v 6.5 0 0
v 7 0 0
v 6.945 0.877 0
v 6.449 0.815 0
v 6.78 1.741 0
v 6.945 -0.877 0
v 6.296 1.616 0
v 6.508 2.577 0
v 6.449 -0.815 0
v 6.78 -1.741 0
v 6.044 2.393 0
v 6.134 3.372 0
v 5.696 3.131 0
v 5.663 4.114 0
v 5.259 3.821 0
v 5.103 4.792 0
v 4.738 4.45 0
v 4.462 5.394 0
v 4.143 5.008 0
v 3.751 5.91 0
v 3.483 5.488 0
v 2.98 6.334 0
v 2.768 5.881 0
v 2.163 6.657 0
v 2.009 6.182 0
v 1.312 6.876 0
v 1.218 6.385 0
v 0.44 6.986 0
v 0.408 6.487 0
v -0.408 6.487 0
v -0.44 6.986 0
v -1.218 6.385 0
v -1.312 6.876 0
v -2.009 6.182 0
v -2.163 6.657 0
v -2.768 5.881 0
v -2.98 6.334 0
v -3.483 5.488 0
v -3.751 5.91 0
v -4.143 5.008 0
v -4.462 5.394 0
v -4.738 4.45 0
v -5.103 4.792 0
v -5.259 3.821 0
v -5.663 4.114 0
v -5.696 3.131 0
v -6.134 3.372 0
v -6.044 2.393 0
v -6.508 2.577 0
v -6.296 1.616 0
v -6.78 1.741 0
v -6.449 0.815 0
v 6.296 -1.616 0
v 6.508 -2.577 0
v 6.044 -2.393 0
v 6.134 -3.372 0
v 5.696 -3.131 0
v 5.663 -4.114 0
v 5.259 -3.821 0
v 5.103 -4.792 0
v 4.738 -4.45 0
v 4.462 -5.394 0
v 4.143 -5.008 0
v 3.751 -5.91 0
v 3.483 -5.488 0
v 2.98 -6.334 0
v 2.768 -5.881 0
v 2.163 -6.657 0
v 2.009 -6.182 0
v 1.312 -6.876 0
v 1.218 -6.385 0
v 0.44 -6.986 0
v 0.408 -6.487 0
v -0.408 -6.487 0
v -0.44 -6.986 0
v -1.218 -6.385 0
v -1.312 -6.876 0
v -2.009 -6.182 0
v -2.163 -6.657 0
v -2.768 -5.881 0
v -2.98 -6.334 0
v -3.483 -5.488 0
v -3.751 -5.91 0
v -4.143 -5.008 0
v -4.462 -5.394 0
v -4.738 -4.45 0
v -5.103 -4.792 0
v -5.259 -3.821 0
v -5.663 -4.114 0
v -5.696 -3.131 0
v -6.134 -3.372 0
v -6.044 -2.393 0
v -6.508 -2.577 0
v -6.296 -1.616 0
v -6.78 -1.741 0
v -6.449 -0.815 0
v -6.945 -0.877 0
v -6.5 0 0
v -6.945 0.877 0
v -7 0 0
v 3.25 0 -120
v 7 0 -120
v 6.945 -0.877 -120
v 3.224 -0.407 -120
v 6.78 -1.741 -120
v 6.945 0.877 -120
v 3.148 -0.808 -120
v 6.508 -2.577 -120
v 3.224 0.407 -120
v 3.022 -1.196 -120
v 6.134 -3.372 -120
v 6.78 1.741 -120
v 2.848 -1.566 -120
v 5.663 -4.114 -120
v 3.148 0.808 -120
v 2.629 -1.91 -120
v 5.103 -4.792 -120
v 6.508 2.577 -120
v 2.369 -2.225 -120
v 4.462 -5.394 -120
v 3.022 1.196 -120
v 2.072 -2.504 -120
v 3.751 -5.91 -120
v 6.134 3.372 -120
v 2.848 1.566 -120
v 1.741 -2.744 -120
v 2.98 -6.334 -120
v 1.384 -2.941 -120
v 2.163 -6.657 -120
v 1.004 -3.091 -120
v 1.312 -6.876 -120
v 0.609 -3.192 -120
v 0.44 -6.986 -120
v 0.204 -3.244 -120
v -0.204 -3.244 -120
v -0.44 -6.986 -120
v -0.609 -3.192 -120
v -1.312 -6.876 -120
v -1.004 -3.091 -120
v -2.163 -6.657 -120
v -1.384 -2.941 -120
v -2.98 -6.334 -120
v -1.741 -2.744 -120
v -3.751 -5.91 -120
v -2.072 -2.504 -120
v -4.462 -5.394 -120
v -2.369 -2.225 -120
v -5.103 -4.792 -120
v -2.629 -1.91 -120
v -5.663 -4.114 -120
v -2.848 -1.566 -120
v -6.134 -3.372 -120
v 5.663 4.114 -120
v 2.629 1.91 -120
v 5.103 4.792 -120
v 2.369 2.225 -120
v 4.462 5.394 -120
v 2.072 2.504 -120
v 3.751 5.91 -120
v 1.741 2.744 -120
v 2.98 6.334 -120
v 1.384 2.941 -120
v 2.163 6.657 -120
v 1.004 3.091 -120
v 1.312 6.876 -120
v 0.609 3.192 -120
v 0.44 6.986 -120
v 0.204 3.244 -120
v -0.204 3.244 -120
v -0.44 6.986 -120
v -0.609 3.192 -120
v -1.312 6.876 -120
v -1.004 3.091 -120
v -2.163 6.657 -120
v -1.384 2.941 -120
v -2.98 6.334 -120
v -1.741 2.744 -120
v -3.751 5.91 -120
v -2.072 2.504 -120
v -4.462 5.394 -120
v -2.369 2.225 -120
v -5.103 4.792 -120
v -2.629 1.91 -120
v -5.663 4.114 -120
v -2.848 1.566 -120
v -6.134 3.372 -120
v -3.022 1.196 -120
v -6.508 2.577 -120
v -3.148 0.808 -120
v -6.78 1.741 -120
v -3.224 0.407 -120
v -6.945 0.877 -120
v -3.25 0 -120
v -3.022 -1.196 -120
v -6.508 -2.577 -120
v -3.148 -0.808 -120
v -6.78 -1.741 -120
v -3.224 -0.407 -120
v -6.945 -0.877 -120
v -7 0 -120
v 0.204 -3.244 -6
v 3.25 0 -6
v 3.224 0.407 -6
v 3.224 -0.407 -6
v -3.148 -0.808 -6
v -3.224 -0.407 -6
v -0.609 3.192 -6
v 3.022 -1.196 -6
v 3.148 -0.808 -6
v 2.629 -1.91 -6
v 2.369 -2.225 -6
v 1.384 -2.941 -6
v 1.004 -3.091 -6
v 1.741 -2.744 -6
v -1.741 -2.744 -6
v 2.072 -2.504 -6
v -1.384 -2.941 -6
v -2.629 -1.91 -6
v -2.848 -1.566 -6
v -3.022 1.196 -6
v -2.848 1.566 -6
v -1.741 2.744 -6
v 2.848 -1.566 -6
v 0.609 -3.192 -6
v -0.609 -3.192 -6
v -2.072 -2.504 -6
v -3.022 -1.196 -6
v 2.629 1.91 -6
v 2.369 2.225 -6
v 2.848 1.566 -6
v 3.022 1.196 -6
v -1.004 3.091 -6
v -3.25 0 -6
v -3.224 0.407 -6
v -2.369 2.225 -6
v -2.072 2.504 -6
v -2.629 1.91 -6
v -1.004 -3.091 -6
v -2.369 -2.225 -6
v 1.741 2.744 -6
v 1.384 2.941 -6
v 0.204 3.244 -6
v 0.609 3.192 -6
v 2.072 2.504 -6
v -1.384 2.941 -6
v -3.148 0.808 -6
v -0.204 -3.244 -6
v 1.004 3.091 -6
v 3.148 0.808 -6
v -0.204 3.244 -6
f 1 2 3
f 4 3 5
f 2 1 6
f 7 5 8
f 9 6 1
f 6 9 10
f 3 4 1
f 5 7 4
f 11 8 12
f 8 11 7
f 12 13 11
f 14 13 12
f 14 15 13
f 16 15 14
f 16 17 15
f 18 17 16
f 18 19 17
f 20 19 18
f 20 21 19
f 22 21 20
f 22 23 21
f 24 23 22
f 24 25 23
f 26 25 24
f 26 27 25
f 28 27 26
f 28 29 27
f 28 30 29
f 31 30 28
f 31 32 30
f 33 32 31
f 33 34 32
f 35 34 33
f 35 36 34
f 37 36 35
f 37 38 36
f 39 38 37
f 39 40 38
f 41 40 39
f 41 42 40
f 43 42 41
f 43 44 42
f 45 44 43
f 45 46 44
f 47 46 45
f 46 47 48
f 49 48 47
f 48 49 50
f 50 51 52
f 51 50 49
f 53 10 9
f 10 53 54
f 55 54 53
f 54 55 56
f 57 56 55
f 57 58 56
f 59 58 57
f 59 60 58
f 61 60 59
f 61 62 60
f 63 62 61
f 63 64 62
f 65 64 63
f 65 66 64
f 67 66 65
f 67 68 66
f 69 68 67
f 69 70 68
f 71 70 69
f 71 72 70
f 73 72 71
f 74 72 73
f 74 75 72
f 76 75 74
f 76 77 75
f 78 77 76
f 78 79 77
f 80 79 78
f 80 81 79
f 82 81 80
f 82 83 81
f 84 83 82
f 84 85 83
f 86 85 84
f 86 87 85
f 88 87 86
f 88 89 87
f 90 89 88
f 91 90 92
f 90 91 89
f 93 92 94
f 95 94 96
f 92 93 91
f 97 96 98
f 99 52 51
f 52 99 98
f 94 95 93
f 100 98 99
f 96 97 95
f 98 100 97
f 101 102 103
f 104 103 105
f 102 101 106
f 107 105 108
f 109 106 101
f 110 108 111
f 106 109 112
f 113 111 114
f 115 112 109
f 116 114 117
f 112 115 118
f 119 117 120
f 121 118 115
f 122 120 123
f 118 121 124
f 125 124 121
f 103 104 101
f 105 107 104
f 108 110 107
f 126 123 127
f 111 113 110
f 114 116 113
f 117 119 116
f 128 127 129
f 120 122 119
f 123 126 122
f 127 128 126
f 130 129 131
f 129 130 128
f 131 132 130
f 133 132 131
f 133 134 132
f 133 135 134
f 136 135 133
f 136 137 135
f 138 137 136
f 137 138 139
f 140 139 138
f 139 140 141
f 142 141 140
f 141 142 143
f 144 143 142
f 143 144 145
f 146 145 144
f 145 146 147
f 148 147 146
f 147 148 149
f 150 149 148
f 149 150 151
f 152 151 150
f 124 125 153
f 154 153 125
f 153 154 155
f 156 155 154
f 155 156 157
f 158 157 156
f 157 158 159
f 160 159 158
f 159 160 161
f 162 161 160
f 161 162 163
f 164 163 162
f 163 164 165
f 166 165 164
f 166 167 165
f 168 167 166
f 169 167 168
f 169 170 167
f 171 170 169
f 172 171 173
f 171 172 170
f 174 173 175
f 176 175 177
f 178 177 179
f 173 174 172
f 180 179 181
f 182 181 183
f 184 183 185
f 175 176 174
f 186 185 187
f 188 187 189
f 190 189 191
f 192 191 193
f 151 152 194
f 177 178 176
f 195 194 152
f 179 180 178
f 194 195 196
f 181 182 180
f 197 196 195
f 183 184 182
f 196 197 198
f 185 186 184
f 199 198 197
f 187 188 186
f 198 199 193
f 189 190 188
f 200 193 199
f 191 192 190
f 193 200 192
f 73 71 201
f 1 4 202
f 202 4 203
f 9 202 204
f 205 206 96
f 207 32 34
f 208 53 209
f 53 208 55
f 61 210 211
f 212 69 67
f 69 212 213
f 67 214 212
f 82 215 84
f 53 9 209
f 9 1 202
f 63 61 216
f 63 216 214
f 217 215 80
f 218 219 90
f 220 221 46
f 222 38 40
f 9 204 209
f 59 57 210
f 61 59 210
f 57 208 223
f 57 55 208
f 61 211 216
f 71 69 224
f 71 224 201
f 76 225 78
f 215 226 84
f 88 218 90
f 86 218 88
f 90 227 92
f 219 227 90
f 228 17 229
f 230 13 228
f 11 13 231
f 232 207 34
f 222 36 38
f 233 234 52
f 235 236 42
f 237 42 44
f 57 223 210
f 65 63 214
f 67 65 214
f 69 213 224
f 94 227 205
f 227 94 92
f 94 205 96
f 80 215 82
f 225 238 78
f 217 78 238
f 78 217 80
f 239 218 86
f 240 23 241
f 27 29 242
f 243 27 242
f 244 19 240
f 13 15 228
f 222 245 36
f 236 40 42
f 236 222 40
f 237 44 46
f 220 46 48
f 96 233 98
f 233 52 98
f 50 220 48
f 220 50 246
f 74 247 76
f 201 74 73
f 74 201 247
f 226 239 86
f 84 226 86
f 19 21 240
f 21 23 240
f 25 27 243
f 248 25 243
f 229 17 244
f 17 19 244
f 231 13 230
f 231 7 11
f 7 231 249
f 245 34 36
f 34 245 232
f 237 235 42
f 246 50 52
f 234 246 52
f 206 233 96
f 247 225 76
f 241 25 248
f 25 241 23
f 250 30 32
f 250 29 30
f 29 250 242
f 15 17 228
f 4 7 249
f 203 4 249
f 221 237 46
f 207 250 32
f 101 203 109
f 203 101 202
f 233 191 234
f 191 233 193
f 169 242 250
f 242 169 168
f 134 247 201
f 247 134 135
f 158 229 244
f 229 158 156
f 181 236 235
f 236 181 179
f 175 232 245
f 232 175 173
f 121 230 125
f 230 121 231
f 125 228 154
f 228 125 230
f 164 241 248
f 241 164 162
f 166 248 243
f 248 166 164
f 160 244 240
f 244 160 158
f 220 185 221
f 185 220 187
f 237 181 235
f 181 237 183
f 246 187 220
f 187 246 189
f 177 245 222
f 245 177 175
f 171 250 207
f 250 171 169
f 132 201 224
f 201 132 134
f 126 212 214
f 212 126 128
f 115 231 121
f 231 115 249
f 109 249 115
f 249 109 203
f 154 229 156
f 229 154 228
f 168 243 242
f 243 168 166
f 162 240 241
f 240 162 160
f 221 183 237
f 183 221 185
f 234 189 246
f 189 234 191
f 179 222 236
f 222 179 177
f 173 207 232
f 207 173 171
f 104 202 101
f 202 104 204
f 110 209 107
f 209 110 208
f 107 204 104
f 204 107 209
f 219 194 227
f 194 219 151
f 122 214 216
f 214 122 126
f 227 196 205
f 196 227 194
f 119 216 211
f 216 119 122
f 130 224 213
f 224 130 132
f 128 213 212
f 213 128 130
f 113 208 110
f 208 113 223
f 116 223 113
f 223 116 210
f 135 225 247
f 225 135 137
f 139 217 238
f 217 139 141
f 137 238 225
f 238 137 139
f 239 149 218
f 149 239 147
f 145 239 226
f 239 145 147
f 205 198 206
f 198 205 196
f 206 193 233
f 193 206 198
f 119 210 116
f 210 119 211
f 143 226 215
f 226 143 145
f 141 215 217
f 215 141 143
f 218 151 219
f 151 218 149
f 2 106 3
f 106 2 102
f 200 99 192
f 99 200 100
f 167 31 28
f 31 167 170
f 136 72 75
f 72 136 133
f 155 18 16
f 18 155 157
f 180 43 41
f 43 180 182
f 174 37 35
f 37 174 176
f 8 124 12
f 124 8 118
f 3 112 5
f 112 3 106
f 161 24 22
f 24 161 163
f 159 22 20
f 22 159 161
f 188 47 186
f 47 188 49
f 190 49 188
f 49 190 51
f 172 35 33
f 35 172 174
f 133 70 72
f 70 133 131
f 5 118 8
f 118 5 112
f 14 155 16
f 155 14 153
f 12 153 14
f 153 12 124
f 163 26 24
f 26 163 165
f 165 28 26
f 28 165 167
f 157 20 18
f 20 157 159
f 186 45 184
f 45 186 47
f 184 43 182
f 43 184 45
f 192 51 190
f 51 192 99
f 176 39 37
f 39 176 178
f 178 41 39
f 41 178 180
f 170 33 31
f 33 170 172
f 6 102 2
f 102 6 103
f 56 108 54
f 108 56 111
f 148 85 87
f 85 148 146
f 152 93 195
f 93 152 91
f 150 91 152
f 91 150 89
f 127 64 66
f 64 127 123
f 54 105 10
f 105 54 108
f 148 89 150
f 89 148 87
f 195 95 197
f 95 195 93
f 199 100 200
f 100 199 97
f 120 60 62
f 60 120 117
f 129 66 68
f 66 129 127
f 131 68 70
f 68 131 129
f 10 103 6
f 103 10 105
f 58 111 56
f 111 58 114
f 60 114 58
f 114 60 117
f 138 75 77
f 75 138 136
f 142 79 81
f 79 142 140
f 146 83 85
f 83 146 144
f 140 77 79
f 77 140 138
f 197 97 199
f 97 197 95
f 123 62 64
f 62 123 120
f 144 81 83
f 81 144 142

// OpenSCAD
$fn = 50;


difference() {
	union() {
		translate(v = [0, 0, -120.0000000000]) {
			cylinder(h = 120, r = 7.0000000000);
		}
		cylinder(h = 0, r = 13.0000000000);
	}
	union() {
		translate(v = [0, 0, 0]) {
			rotate(a = [0, 0, 0]) {
				difference() {
					union() {
						#translate(v = [0, 0, -120.0000000000]) {
							cylinder(h = 120, r = 2.2500000000);
						}
						#translate(v = [0, 0, -6]) {
							cylinder(h = 6, r = 7.0000000000, r1 = 3.2500000000, r2 = 6.5000000000);
						}
						#translate(v = [0, 0, -120.0000000000]) {
							cylinder(h = 120, r = 3.2500000000);
						}
						#translate(v = [0, 0, -120.0000000000]) {
							cylinder(h = 120, r = 2.2500000000);
						}
					}
					union();
				}
			}
		}
	}
}
